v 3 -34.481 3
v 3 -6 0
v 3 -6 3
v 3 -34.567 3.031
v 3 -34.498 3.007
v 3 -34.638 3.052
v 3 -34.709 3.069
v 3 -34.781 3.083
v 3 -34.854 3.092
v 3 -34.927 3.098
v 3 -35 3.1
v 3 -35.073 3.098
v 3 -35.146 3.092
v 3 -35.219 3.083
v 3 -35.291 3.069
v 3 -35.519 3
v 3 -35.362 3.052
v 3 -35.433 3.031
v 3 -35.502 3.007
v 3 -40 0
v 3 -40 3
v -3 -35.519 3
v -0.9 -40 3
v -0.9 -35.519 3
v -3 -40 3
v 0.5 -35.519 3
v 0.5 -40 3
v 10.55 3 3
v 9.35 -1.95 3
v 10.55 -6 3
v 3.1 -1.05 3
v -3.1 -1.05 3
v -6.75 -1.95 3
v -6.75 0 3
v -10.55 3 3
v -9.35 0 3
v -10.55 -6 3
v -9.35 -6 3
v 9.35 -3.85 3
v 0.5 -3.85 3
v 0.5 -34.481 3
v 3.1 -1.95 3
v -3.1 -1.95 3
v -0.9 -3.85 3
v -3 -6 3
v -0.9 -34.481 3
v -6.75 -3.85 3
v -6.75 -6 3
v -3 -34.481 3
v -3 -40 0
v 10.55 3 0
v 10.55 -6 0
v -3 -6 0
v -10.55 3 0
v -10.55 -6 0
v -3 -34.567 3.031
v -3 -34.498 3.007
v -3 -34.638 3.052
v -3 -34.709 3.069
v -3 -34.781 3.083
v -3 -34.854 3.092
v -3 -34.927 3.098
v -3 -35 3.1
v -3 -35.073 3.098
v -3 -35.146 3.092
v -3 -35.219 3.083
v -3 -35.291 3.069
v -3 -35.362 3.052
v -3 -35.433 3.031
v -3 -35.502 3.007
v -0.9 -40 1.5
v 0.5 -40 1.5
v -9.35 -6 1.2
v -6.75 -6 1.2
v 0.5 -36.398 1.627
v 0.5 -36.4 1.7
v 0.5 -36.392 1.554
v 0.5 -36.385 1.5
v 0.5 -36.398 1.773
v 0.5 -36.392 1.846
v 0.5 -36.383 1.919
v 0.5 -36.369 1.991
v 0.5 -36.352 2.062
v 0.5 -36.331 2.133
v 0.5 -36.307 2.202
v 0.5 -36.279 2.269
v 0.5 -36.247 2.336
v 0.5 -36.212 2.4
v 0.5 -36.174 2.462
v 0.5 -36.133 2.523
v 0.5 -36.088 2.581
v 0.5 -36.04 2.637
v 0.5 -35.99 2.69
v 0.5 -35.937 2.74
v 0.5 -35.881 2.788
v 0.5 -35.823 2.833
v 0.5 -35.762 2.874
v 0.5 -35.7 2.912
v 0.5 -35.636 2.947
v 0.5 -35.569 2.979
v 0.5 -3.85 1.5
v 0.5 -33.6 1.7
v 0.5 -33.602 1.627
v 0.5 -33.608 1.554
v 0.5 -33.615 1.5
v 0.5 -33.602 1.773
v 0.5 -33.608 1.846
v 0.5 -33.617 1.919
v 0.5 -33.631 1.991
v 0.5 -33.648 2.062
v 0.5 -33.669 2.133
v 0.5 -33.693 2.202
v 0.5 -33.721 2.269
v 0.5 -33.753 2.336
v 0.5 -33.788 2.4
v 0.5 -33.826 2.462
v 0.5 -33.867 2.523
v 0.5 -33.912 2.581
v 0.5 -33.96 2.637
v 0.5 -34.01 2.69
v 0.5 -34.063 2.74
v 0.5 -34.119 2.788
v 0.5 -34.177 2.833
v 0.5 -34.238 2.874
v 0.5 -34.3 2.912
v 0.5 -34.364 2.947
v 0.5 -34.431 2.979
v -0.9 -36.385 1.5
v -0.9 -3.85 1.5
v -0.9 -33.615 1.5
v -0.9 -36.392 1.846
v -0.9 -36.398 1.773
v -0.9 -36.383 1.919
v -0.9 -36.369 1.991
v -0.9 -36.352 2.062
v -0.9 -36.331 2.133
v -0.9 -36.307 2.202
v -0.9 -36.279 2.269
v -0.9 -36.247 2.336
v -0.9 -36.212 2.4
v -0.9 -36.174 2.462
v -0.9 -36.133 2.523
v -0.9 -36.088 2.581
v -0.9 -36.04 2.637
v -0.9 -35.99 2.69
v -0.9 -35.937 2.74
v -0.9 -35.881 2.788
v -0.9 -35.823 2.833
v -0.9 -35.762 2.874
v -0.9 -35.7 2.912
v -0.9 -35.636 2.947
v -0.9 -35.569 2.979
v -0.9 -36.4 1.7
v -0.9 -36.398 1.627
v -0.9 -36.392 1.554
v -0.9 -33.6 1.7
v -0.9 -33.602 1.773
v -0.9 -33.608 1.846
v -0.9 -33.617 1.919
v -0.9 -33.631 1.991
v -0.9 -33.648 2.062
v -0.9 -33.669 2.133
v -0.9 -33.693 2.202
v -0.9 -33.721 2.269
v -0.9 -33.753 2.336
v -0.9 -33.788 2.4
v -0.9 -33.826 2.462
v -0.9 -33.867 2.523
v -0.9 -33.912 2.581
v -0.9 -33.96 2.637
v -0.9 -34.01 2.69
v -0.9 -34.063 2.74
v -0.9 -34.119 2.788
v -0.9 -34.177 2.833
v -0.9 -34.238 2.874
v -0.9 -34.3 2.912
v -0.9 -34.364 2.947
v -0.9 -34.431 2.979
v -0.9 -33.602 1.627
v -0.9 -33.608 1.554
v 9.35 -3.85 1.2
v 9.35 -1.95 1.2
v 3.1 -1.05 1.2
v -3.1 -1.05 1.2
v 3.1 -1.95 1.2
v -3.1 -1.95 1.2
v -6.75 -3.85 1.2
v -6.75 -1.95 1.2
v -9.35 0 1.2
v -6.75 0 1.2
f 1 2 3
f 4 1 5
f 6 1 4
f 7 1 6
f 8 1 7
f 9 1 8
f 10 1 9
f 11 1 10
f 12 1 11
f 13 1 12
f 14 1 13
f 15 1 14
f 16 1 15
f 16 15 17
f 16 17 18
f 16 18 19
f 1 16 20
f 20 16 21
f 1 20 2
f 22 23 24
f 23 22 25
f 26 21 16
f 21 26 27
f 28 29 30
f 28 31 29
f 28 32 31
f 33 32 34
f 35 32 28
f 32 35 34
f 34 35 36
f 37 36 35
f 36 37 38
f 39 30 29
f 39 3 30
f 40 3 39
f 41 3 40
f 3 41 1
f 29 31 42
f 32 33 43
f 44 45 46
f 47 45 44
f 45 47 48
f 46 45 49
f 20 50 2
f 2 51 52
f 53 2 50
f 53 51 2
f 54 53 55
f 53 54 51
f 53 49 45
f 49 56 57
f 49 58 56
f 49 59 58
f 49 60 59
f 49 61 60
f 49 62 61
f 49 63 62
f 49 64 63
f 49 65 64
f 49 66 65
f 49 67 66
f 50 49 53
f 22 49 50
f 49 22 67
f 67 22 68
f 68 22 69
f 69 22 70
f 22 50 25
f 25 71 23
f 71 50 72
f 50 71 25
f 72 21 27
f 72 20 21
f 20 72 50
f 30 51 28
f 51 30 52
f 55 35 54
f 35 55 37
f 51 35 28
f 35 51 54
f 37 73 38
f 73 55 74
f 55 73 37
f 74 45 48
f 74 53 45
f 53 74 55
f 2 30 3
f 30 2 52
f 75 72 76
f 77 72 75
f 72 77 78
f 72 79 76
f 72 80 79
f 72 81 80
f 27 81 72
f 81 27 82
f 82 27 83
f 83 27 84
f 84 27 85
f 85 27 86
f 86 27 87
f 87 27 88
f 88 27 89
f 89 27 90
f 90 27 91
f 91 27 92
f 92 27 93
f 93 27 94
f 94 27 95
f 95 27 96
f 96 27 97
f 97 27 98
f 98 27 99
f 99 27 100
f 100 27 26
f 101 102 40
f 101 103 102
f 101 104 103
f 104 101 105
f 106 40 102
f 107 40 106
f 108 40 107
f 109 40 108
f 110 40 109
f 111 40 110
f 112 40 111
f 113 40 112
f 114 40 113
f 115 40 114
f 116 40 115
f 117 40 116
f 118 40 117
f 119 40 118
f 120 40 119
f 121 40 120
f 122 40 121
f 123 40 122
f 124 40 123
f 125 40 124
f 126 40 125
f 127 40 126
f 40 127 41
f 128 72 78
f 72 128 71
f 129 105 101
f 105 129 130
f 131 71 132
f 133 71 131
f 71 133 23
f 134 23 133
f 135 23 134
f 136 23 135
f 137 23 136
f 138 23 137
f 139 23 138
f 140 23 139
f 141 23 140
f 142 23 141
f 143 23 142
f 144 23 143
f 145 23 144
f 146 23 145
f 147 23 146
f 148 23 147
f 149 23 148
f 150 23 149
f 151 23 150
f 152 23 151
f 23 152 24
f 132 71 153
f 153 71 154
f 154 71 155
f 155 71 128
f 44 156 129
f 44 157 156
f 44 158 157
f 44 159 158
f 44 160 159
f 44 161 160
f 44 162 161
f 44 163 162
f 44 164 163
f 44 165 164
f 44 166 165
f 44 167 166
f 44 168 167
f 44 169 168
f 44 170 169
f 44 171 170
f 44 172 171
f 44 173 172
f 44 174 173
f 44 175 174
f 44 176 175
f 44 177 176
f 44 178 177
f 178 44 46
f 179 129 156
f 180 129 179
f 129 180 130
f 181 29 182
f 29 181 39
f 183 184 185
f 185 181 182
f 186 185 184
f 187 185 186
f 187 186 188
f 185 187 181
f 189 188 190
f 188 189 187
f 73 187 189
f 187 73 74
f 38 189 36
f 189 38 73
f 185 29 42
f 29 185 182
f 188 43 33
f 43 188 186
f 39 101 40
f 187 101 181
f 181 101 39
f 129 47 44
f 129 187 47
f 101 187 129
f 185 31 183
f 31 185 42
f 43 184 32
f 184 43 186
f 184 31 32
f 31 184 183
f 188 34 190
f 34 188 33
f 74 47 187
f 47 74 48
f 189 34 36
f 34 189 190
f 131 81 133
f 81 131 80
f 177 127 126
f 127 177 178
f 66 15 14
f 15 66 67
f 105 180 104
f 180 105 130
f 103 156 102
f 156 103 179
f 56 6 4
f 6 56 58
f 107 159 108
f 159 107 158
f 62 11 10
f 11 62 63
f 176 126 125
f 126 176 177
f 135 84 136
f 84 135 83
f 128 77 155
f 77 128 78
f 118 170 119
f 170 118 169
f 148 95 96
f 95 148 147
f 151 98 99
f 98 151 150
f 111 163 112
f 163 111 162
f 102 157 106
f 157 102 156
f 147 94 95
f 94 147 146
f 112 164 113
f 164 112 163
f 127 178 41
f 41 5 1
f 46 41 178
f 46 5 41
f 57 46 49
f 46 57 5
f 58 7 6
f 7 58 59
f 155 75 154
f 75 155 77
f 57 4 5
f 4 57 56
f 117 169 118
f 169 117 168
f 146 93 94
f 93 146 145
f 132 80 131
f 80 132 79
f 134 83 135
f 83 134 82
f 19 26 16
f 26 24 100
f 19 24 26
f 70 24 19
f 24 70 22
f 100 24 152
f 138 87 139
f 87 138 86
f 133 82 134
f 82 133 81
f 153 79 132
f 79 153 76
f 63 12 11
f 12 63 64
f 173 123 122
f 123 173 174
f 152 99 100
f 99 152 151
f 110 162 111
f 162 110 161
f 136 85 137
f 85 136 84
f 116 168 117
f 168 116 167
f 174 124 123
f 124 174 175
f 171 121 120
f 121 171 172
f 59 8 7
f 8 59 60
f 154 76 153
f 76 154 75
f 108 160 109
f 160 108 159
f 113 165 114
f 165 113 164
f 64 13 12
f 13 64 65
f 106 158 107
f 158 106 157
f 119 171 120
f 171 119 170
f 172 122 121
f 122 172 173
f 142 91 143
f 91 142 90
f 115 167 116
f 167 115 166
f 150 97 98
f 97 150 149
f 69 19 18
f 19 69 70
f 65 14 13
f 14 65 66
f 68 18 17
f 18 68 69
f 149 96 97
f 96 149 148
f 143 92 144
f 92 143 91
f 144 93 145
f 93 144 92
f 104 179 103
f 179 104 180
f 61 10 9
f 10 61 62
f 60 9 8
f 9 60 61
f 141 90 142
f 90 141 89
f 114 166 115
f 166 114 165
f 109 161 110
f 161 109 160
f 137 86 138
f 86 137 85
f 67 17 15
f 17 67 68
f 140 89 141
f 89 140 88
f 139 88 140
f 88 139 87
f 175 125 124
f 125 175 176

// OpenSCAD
$fn = 120;

pcbh = 1.7;
pcbw = 18.3;
pcbd = 22.9;
sd = 22.3;
dpw = 2.6;
smh = 1.2;
ah = 1.1; // ceramic antenna
aw = 6.2;
usbw = 9.2;
usbh = 3.2;

union() {
    difference() {
        union() {
            translate([-3,-40,0]) cube([6, 40, 3.0]);
            translate([(pcbw + 2.8)/-2,-6,0]) cube([pcbw + 2.8, 9, 3.0]);
            // Clicky thingy
            /* hull() {
                translate([(pcbw + 2.8)/-2,1,3]) cube([pcbw + 2.8, 2, 0.2]);
                translate([(pcbw + 2.8)/-2,2.6,4.4]) cube([pcbw + 2.8, 0.4, 0.2]);
            } */
        }
        // Groove y
        translate([-1.5 + smh/2,-40, 1.2 + (pcbd-sd)/2]) cube([smh + 0.2, 37, 5]);
        // Groove x
        translate([(pcbw + 0.4) / -2, -3 - pcbh/2, 1.2]) cube([pcbw + 0.4, pcbh + 0.2, 5]);
        // Antenna
        translate([aw/-2, -3 + pcbh/2, 1.2]) cube([aw, ah, 5]);
        // USB 
        // translate([usbw/-2, -3 + pcbh/2, 0]) cube([usbw, usbh, 7]);
        // Pin header on USB side
        // translate([pcbw/2 - 2.4 , - 12, 1.2]) cube([2.6, 12, 5]);
        // Pin header opposing side
        translate([pcbw/-2 - 0.2 , - 12, 1.2]) cube([2.6, 12, 5]);
    }
    translate([-3, -35, 1.4 + (pcbd-sd)/2]) rotate([0,90,0]) cylinder(6,1.4,1.4);
}
